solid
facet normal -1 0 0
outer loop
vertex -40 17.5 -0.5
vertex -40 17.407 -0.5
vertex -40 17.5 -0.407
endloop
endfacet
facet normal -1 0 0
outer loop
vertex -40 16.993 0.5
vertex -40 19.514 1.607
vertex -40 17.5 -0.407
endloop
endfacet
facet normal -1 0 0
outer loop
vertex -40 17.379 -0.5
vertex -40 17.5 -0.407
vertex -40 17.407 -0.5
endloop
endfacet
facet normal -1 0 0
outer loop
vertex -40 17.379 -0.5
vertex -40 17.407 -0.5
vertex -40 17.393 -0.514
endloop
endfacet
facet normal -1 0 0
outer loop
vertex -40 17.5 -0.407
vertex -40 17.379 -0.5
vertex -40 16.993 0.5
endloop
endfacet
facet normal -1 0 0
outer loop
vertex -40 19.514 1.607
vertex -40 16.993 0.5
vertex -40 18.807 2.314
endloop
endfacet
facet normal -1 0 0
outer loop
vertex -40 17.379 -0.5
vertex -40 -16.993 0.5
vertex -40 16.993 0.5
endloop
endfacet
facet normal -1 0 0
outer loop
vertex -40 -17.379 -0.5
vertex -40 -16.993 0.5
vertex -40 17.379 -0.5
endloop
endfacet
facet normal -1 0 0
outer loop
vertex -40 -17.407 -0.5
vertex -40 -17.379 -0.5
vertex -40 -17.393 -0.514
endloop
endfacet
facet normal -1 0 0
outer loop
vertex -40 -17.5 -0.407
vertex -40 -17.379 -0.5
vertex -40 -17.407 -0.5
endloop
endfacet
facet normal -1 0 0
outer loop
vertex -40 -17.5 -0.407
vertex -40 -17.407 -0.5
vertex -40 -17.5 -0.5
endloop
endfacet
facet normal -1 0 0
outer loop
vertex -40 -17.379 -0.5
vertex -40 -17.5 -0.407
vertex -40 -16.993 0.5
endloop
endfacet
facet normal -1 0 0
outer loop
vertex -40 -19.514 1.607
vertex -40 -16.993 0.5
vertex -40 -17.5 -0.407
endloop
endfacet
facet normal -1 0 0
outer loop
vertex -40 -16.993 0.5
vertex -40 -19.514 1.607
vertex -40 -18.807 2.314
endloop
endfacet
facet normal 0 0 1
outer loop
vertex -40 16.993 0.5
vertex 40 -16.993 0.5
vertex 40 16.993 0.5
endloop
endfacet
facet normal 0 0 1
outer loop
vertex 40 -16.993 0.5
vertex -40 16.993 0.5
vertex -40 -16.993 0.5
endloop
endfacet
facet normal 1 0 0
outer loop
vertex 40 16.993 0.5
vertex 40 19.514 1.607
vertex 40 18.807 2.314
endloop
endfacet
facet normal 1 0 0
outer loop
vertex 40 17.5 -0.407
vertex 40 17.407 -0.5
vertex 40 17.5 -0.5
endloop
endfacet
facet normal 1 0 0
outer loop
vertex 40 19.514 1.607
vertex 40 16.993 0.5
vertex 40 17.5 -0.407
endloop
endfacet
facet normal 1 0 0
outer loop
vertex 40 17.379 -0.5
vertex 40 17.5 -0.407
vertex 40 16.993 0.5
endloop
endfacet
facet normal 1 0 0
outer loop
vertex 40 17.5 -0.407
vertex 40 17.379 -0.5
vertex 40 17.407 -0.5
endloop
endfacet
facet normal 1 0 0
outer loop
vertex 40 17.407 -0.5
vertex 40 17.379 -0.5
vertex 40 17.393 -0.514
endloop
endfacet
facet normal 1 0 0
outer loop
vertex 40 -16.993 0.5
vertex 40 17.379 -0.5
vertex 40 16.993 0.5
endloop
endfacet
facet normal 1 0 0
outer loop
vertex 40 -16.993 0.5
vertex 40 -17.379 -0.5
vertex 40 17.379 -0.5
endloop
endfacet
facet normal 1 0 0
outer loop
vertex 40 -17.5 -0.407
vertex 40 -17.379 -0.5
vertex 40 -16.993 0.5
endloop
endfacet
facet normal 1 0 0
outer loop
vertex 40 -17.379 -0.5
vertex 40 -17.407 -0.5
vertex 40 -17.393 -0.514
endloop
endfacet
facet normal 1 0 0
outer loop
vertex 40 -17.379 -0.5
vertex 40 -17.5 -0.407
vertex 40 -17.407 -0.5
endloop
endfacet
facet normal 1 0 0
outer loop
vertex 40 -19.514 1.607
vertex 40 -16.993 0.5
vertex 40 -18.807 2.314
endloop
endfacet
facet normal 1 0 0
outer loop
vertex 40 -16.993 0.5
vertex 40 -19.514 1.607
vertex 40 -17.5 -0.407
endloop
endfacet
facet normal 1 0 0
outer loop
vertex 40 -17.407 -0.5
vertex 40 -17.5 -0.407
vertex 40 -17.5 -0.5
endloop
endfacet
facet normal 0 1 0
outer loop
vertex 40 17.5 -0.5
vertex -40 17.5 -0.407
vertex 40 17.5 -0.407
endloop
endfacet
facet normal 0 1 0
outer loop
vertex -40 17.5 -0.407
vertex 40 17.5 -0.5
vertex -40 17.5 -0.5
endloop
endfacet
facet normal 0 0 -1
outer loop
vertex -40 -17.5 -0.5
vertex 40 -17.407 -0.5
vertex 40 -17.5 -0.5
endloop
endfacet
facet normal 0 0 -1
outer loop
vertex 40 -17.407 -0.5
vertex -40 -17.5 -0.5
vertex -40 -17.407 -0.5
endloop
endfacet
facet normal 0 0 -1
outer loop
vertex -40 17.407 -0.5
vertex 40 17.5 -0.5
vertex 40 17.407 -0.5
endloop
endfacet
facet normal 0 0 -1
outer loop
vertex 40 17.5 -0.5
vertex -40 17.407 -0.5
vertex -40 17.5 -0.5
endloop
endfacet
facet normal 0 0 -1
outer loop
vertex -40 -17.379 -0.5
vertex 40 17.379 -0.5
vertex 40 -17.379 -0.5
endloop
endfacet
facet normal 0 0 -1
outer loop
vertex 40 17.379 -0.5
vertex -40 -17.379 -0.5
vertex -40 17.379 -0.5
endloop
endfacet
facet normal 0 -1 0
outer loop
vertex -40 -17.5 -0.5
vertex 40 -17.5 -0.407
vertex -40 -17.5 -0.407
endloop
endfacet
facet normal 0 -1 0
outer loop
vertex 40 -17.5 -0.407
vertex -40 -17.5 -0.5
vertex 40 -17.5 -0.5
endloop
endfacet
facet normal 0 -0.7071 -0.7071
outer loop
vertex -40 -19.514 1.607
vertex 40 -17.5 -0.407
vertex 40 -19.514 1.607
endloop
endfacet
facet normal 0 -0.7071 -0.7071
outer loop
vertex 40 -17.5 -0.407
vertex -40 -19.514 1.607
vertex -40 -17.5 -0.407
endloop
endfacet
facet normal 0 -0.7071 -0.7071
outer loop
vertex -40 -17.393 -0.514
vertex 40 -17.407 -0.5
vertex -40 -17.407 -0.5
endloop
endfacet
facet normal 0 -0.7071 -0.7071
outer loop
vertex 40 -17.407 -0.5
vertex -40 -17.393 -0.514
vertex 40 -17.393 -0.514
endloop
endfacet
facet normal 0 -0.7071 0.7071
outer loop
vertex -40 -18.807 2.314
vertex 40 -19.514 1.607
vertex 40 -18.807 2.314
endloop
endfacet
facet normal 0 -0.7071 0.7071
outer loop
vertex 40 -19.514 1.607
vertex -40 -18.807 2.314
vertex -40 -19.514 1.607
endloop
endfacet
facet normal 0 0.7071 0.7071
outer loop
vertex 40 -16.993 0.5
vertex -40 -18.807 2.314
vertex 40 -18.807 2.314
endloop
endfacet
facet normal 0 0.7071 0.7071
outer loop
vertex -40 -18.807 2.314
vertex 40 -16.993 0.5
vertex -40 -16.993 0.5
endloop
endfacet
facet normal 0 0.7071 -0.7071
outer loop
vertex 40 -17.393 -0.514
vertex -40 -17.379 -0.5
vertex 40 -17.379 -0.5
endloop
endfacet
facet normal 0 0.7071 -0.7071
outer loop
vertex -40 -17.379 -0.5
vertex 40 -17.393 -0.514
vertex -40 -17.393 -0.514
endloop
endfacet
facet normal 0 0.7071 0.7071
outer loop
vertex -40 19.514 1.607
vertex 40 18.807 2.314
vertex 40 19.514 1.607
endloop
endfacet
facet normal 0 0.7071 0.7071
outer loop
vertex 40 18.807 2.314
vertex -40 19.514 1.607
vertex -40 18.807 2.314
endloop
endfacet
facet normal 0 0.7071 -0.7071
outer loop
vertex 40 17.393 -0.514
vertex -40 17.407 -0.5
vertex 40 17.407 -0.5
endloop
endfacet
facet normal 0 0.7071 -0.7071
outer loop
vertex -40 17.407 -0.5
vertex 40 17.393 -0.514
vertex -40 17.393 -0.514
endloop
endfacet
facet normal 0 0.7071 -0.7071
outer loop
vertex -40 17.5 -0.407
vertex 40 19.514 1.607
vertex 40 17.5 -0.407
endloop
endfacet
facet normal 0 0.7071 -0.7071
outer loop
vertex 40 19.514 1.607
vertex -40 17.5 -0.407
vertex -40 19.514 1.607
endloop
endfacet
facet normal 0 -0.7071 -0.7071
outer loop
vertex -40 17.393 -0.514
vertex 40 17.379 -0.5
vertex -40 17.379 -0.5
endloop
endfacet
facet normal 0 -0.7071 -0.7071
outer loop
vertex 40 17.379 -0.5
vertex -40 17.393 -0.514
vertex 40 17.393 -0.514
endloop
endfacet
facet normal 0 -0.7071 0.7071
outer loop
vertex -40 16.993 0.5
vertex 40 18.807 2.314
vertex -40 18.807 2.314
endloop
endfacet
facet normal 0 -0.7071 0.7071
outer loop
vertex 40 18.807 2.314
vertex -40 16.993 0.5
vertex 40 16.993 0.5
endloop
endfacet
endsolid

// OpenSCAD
// pipe
// **************************

len = 80;
wid = 35;
thick = 1;

  cube ([len,wid,thick], center=true);
  translate ([0,-wid/2-0.6,thick*.9]) rotate ([45,0,0]) cube ([len,1,2+thick], center=true);
  translate ([0,wid/2+0.6,thick*.9]) rotate ([-45,0,0]) cube ([len,1,2+thick], center=true);
   

   
